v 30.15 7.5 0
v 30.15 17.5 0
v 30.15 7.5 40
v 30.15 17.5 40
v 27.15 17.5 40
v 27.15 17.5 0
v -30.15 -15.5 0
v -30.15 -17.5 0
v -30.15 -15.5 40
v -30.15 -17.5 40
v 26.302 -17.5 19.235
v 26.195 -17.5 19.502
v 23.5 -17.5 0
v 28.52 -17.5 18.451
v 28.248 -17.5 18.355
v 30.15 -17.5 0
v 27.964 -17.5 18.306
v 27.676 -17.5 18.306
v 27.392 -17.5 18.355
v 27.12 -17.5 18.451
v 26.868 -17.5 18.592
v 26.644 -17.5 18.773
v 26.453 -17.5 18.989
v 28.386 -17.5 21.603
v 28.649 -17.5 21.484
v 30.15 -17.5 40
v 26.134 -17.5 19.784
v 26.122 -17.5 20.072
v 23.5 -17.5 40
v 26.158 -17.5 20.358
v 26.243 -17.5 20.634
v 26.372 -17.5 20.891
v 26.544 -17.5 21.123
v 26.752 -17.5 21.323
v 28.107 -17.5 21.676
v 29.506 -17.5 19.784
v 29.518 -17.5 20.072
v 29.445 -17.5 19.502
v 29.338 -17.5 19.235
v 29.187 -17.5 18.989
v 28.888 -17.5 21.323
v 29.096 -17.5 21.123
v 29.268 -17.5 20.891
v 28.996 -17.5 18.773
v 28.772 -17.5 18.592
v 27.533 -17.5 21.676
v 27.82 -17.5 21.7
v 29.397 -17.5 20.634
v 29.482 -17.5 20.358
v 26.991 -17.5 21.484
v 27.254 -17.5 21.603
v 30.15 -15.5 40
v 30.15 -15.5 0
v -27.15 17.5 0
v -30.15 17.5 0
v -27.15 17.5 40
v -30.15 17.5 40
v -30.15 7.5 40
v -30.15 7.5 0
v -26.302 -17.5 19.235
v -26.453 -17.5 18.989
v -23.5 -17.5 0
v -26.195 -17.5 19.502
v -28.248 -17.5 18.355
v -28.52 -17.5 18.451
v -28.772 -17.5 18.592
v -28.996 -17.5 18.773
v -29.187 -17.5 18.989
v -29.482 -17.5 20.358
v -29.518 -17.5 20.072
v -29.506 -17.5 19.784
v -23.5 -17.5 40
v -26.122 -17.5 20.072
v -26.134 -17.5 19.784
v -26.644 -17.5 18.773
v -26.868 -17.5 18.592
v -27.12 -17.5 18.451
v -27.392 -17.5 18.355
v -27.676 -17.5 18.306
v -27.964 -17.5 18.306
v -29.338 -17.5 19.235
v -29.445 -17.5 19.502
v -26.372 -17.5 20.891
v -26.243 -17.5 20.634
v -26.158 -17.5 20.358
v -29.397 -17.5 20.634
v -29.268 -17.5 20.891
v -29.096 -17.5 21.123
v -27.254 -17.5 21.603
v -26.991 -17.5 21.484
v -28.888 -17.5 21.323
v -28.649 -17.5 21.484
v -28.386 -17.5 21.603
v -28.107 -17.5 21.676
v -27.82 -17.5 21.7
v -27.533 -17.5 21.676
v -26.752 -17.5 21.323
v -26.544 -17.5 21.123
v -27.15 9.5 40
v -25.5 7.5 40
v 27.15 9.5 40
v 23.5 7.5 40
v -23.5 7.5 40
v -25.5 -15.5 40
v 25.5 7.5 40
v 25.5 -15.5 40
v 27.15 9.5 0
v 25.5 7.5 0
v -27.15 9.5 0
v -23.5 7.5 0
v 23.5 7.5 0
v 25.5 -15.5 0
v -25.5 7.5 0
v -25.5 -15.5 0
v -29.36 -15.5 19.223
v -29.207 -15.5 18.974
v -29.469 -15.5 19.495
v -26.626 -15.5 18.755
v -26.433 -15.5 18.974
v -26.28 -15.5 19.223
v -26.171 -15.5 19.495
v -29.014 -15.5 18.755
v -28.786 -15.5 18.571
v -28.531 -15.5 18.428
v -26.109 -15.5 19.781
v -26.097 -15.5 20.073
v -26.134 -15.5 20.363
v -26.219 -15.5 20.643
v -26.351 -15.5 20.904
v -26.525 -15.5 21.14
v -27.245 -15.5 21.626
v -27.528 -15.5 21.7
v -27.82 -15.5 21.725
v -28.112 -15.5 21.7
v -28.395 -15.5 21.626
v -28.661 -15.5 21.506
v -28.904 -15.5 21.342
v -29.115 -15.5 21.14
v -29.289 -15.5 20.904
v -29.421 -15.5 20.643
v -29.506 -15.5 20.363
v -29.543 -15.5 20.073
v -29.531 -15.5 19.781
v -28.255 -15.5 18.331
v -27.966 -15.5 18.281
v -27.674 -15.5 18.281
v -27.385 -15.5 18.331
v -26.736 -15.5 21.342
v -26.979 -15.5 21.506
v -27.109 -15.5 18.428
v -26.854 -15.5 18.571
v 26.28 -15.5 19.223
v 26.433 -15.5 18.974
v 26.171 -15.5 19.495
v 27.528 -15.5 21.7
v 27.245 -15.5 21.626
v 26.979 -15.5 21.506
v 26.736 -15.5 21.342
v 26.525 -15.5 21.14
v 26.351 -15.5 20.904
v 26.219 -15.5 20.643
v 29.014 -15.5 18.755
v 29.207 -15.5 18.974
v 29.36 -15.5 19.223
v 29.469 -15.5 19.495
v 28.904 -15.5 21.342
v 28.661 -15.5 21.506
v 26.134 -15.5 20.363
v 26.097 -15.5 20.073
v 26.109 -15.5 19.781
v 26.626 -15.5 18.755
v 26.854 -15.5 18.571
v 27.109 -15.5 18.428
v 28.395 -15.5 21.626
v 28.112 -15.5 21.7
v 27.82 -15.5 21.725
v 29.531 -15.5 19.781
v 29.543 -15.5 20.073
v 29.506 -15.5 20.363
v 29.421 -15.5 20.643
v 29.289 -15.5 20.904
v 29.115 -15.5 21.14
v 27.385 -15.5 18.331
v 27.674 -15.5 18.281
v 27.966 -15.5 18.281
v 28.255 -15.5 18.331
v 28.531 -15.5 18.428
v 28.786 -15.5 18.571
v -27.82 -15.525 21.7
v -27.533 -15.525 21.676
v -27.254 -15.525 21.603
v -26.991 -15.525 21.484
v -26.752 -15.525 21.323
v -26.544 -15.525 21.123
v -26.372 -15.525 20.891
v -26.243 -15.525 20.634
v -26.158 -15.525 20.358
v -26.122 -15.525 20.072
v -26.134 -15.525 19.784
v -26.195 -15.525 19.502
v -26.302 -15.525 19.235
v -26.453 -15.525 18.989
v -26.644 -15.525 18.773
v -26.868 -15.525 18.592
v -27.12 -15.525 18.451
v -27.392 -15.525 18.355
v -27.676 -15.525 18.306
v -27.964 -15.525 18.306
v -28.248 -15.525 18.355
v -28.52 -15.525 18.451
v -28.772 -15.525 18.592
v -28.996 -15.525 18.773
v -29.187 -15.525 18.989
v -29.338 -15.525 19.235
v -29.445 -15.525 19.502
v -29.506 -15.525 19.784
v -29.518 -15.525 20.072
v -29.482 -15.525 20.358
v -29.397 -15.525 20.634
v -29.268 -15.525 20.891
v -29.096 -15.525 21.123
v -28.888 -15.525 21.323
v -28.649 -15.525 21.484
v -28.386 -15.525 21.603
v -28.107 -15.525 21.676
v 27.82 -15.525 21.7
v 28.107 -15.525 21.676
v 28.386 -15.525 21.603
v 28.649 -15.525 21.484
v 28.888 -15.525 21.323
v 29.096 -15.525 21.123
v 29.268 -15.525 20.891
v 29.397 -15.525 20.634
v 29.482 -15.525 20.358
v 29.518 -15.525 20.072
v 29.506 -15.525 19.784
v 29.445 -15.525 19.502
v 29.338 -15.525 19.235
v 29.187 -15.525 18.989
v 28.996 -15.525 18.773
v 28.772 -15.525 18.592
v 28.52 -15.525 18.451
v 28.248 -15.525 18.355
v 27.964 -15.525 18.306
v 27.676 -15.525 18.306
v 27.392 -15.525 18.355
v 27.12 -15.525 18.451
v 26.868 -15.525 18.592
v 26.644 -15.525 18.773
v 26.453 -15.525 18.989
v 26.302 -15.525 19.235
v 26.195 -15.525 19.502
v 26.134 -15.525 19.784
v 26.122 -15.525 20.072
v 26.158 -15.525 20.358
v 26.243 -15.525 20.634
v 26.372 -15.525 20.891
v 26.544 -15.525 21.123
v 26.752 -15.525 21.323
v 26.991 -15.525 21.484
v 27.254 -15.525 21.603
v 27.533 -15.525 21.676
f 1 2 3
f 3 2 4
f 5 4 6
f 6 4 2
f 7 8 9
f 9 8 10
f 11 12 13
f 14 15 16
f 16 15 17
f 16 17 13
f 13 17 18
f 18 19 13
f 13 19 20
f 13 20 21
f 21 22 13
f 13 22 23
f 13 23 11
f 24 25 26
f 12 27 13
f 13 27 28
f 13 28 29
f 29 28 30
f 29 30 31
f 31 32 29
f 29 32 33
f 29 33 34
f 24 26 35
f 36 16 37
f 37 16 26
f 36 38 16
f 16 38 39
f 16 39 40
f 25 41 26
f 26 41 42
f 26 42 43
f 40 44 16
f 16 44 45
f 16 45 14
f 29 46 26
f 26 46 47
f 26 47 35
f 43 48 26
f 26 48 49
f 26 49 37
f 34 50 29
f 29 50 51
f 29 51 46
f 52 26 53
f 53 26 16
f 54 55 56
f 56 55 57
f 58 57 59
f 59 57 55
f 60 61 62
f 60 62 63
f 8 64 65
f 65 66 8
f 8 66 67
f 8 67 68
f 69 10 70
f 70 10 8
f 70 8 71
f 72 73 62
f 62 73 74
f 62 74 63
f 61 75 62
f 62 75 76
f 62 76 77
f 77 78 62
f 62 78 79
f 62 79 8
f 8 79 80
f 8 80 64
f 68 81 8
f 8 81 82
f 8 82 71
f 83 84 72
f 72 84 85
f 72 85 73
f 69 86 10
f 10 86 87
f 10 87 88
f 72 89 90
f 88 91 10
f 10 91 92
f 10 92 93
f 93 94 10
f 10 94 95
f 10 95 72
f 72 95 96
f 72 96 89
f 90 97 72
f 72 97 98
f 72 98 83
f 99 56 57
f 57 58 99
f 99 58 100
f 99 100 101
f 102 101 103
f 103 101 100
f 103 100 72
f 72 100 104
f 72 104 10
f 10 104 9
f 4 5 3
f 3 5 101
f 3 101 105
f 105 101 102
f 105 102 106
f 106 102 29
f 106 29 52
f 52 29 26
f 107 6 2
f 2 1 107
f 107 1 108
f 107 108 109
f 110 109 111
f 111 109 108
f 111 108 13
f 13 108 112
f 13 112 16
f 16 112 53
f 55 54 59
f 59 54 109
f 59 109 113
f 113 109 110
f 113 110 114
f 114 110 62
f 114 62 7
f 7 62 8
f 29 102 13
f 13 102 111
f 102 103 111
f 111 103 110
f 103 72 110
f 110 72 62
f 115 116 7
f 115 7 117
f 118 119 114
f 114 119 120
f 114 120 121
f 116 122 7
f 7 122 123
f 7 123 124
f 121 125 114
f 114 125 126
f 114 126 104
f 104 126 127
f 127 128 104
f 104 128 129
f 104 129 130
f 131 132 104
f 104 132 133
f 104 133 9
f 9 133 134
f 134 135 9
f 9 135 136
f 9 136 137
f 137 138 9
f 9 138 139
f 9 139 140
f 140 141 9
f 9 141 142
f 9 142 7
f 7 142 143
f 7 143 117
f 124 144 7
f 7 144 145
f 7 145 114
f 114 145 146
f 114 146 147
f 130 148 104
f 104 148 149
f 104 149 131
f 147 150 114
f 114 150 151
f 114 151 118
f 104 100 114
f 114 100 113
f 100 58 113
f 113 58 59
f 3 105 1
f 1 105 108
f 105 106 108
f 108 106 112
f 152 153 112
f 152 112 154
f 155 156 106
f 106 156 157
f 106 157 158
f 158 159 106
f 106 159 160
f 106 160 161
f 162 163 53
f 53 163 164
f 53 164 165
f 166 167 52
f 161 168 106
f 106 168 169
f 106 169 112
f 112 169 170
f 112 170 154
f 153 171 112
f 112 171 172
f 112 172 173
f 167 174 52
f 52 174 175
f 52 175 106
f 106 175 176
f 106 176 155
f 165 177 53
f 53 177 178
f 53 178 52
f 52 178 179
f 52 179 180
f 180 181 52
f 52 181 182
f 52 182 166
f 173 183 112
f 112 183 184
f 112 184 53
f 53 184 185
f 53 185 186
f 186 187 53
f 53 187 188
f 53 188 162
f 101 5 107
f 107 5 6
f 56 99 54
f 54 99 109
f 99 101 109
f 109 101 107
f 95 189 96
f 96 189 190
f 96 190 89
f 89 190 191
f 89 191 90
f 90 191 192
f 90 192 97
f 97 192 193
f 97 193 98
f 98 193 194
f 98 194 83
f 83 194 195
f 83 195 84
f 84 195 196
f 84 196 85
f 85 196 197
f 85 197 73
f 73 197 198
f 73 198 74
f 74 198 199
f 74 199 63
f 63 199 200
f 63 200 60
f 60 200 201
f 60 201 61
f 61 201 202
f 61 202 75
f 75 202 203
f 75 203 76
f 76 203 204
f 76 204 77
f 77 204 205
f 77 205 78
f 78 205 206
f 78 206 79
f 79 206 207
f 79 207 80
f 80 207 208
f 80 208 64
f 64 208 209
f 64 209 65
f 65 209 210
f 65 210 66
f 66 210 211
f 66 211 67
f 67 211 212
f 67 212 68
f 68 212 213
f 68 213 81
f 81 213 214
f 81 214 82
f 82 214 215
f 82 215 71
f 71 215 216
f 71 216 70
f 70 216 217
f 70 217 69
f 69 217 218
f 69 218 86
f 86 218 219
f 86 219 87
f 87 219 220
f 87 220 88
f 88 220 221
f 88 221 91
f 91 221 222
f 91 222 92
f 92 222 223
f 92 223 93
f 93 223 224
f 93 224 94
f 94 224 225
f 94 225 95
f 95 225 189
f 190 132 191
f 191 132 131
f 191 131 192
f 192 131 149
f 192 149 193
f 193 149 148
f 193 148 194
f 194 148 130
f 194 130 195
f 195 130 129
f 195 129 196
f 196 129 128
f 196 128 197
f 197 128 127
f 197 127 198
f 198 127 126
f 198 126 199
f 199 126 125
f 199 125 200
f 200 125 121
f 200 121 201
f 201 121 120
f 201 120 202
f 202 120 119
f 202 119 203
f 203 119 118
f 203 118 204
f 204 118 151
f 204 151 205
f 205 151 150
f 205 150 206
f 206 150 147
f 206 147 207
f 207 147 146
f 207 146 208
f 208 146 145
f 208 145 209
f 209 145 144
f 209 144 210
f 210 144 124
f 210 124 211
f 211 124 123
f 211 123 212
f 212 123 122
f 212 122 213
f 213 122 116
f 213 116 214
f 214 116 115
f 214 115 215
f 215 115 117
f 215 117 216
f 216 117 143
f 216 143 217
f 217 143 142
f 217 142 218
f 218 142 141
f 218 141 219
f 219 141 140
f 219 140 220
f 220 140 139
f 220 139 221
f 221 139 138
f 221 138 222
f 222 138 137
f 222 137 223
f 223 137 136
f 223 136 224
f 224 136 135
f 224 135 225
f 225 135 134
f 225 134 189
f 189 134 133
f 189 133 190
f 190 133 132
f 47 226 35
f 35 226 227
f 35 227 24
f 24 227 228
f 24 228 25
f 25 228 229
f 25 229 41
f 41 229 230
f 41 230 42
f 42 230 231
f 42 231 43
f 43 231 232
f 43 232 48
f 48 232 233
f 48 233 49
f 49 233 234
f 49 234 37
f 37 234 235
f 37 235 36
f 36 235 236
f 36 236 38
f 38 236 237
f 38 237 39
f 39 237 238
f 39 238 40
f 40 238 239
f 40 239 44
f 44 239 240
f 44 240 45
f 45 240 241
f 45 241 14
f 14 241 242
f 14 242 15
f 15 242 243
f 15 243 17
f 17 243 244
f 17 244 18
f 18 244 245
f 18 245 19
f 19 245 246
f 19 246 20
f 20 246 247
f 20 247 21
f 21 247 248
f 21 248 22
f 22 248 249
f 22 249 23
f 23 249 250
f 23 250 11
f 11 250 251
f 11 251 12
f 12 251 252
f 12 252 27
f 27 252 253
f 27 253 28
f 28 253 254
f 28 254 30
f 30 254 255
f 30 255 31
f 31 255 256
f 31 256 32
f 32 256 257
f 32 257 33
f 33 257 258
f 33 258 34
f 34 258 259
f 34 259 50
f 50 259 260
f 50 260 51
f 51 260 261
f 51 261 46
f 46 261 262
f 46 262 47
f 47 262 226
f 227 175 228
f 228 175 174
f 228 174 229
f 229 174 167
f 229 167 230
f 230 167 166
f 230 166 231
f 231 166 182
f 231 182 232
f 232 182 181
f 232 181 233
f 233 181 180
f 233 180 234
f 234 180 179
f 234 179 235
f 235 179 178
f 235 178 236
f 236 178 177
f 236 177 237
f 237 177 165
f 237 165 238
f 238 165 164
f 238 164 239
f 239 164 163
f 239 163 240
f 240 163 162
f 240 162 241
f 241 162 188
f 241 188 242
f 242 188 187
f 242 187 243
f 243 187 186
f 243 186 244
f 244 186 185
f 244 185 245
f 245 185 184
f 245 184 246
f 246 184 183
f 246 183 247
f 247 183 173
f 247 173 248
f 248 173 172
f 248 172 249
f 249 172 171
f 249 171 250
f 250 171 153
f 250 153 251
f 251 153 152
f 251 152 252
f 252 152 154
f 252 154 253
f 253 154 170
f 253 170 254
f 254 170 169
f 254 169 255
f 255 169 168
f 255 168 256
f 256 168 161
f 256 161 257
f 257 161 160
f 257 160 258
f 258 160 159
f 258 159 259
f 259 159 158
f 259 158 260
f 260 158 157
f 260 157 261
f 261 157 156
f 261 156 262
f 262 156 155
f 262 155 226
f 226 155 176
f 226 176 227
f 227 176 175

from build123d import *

# Parameters (mm, degrees)
SKETCH1_W                      = 60.3
SKETCH1_H                      = 35
BOSS_EXTRUDE1_DEPTH            = 40
SKETCH2_W                      = 47
SKETCH2_H                      = 25
SKETCH2_W_2                    = 54.3
SKETCH2_H_2                    = 8
SKETCH2_W_3                    = 4.65
SKETCH2_H_3                    = 23
CUT_EXTRUDE1_DEPTH             = 54.059141531
M3_CLEARANCE_HOLE2_D           = 3.4
M3_CLEARANCE_HOLE2_DEPTH       = 2
M3_CLEARANCE_HOLE2_CSINK_D     = 3.45
M3_CLEARANCE_HOLE2_CSINK_ANGLE = 90
M3_CLEARANCE_HOLE3_D           = 3.4
M3_CLEARANCE_HOLE3_DEPTH       = 2
M3_CLEARANCE_HOLE3_CSINK_D     = 3.45
M3_CLEARANCE_HOLE3_CSINK_ANGLE = 90


with BuildPart() as part:
    # Sketch1 → Boss-Extrude1 (new body)
    with BuildSketch(Plane.XY):
        Rectangle(SKETCH1_W, SKETCH1_H)
    extrude(amount=BOSS_EXTRUDE1_DEPTH)

    # Sketch2 → Cut-Extrude1 (cut, through all)
    with BuildSketch(Plane(origin=(0, 0, 0), x_dir=(-1, 0, 0), z_dir=(0, 0, -1))):
        with Locations((0, -5)):
            Rectangle(SKETCH2_W, SKETCH2_H)
        with Locations((0, 13.5)):
            Rectangle(SKETCH2_W_2, SKETCH2_H_2)
        with Locations((-27.825, -4)):
            Rectangle(SKETCH2_W_3, SKETCH2_H_3)
        with Locations((27.825, -4)):
            Rectangle(SKETCH2_W_3, SKETCH2_H_3)
    extrude(amount=-CUT_EXTRUDE1_DEPTH, mode=Mode.SUBTRACT)

    # M3 Clearance Hole2
    with Locations(Plane(origin=(0, -15.5, 0), x_dir=(1, 0, 0), z_dir=(0, 1, 0))):
        with Locations((-27.82, -20)):
            CounterSinkHole(M3_CLEARANCE_HOLE2_D / 2, M3_CLEARANCE_HOLE2_CSINK_D / 2, depth=M3_CLEARANCE_HOLE2_DEPTH, counter_sink_angle=M3_CLEARANCE_HOLE2_CSINK_ANGLE)

    # M3 Clearance Hole3
    with Locations(Plane(origin=(0, -15.5, 0), x_dir=(1, 0, 0), z_dir=(0, 1, 0))):
        with Locations((27.82, -20)):
            CounterSinkHole(M3_CLEARANCE_HOLE3_D / 2, M3_CLEARANCE_HOLE3_CSINK_D / 2, depth=M3_CLEARANCE_HOLE3_DEPTH, counter_sink_angle=M3_CLEARANCE_HOLE3_CSINK_ANGLE)


solid = part.part
